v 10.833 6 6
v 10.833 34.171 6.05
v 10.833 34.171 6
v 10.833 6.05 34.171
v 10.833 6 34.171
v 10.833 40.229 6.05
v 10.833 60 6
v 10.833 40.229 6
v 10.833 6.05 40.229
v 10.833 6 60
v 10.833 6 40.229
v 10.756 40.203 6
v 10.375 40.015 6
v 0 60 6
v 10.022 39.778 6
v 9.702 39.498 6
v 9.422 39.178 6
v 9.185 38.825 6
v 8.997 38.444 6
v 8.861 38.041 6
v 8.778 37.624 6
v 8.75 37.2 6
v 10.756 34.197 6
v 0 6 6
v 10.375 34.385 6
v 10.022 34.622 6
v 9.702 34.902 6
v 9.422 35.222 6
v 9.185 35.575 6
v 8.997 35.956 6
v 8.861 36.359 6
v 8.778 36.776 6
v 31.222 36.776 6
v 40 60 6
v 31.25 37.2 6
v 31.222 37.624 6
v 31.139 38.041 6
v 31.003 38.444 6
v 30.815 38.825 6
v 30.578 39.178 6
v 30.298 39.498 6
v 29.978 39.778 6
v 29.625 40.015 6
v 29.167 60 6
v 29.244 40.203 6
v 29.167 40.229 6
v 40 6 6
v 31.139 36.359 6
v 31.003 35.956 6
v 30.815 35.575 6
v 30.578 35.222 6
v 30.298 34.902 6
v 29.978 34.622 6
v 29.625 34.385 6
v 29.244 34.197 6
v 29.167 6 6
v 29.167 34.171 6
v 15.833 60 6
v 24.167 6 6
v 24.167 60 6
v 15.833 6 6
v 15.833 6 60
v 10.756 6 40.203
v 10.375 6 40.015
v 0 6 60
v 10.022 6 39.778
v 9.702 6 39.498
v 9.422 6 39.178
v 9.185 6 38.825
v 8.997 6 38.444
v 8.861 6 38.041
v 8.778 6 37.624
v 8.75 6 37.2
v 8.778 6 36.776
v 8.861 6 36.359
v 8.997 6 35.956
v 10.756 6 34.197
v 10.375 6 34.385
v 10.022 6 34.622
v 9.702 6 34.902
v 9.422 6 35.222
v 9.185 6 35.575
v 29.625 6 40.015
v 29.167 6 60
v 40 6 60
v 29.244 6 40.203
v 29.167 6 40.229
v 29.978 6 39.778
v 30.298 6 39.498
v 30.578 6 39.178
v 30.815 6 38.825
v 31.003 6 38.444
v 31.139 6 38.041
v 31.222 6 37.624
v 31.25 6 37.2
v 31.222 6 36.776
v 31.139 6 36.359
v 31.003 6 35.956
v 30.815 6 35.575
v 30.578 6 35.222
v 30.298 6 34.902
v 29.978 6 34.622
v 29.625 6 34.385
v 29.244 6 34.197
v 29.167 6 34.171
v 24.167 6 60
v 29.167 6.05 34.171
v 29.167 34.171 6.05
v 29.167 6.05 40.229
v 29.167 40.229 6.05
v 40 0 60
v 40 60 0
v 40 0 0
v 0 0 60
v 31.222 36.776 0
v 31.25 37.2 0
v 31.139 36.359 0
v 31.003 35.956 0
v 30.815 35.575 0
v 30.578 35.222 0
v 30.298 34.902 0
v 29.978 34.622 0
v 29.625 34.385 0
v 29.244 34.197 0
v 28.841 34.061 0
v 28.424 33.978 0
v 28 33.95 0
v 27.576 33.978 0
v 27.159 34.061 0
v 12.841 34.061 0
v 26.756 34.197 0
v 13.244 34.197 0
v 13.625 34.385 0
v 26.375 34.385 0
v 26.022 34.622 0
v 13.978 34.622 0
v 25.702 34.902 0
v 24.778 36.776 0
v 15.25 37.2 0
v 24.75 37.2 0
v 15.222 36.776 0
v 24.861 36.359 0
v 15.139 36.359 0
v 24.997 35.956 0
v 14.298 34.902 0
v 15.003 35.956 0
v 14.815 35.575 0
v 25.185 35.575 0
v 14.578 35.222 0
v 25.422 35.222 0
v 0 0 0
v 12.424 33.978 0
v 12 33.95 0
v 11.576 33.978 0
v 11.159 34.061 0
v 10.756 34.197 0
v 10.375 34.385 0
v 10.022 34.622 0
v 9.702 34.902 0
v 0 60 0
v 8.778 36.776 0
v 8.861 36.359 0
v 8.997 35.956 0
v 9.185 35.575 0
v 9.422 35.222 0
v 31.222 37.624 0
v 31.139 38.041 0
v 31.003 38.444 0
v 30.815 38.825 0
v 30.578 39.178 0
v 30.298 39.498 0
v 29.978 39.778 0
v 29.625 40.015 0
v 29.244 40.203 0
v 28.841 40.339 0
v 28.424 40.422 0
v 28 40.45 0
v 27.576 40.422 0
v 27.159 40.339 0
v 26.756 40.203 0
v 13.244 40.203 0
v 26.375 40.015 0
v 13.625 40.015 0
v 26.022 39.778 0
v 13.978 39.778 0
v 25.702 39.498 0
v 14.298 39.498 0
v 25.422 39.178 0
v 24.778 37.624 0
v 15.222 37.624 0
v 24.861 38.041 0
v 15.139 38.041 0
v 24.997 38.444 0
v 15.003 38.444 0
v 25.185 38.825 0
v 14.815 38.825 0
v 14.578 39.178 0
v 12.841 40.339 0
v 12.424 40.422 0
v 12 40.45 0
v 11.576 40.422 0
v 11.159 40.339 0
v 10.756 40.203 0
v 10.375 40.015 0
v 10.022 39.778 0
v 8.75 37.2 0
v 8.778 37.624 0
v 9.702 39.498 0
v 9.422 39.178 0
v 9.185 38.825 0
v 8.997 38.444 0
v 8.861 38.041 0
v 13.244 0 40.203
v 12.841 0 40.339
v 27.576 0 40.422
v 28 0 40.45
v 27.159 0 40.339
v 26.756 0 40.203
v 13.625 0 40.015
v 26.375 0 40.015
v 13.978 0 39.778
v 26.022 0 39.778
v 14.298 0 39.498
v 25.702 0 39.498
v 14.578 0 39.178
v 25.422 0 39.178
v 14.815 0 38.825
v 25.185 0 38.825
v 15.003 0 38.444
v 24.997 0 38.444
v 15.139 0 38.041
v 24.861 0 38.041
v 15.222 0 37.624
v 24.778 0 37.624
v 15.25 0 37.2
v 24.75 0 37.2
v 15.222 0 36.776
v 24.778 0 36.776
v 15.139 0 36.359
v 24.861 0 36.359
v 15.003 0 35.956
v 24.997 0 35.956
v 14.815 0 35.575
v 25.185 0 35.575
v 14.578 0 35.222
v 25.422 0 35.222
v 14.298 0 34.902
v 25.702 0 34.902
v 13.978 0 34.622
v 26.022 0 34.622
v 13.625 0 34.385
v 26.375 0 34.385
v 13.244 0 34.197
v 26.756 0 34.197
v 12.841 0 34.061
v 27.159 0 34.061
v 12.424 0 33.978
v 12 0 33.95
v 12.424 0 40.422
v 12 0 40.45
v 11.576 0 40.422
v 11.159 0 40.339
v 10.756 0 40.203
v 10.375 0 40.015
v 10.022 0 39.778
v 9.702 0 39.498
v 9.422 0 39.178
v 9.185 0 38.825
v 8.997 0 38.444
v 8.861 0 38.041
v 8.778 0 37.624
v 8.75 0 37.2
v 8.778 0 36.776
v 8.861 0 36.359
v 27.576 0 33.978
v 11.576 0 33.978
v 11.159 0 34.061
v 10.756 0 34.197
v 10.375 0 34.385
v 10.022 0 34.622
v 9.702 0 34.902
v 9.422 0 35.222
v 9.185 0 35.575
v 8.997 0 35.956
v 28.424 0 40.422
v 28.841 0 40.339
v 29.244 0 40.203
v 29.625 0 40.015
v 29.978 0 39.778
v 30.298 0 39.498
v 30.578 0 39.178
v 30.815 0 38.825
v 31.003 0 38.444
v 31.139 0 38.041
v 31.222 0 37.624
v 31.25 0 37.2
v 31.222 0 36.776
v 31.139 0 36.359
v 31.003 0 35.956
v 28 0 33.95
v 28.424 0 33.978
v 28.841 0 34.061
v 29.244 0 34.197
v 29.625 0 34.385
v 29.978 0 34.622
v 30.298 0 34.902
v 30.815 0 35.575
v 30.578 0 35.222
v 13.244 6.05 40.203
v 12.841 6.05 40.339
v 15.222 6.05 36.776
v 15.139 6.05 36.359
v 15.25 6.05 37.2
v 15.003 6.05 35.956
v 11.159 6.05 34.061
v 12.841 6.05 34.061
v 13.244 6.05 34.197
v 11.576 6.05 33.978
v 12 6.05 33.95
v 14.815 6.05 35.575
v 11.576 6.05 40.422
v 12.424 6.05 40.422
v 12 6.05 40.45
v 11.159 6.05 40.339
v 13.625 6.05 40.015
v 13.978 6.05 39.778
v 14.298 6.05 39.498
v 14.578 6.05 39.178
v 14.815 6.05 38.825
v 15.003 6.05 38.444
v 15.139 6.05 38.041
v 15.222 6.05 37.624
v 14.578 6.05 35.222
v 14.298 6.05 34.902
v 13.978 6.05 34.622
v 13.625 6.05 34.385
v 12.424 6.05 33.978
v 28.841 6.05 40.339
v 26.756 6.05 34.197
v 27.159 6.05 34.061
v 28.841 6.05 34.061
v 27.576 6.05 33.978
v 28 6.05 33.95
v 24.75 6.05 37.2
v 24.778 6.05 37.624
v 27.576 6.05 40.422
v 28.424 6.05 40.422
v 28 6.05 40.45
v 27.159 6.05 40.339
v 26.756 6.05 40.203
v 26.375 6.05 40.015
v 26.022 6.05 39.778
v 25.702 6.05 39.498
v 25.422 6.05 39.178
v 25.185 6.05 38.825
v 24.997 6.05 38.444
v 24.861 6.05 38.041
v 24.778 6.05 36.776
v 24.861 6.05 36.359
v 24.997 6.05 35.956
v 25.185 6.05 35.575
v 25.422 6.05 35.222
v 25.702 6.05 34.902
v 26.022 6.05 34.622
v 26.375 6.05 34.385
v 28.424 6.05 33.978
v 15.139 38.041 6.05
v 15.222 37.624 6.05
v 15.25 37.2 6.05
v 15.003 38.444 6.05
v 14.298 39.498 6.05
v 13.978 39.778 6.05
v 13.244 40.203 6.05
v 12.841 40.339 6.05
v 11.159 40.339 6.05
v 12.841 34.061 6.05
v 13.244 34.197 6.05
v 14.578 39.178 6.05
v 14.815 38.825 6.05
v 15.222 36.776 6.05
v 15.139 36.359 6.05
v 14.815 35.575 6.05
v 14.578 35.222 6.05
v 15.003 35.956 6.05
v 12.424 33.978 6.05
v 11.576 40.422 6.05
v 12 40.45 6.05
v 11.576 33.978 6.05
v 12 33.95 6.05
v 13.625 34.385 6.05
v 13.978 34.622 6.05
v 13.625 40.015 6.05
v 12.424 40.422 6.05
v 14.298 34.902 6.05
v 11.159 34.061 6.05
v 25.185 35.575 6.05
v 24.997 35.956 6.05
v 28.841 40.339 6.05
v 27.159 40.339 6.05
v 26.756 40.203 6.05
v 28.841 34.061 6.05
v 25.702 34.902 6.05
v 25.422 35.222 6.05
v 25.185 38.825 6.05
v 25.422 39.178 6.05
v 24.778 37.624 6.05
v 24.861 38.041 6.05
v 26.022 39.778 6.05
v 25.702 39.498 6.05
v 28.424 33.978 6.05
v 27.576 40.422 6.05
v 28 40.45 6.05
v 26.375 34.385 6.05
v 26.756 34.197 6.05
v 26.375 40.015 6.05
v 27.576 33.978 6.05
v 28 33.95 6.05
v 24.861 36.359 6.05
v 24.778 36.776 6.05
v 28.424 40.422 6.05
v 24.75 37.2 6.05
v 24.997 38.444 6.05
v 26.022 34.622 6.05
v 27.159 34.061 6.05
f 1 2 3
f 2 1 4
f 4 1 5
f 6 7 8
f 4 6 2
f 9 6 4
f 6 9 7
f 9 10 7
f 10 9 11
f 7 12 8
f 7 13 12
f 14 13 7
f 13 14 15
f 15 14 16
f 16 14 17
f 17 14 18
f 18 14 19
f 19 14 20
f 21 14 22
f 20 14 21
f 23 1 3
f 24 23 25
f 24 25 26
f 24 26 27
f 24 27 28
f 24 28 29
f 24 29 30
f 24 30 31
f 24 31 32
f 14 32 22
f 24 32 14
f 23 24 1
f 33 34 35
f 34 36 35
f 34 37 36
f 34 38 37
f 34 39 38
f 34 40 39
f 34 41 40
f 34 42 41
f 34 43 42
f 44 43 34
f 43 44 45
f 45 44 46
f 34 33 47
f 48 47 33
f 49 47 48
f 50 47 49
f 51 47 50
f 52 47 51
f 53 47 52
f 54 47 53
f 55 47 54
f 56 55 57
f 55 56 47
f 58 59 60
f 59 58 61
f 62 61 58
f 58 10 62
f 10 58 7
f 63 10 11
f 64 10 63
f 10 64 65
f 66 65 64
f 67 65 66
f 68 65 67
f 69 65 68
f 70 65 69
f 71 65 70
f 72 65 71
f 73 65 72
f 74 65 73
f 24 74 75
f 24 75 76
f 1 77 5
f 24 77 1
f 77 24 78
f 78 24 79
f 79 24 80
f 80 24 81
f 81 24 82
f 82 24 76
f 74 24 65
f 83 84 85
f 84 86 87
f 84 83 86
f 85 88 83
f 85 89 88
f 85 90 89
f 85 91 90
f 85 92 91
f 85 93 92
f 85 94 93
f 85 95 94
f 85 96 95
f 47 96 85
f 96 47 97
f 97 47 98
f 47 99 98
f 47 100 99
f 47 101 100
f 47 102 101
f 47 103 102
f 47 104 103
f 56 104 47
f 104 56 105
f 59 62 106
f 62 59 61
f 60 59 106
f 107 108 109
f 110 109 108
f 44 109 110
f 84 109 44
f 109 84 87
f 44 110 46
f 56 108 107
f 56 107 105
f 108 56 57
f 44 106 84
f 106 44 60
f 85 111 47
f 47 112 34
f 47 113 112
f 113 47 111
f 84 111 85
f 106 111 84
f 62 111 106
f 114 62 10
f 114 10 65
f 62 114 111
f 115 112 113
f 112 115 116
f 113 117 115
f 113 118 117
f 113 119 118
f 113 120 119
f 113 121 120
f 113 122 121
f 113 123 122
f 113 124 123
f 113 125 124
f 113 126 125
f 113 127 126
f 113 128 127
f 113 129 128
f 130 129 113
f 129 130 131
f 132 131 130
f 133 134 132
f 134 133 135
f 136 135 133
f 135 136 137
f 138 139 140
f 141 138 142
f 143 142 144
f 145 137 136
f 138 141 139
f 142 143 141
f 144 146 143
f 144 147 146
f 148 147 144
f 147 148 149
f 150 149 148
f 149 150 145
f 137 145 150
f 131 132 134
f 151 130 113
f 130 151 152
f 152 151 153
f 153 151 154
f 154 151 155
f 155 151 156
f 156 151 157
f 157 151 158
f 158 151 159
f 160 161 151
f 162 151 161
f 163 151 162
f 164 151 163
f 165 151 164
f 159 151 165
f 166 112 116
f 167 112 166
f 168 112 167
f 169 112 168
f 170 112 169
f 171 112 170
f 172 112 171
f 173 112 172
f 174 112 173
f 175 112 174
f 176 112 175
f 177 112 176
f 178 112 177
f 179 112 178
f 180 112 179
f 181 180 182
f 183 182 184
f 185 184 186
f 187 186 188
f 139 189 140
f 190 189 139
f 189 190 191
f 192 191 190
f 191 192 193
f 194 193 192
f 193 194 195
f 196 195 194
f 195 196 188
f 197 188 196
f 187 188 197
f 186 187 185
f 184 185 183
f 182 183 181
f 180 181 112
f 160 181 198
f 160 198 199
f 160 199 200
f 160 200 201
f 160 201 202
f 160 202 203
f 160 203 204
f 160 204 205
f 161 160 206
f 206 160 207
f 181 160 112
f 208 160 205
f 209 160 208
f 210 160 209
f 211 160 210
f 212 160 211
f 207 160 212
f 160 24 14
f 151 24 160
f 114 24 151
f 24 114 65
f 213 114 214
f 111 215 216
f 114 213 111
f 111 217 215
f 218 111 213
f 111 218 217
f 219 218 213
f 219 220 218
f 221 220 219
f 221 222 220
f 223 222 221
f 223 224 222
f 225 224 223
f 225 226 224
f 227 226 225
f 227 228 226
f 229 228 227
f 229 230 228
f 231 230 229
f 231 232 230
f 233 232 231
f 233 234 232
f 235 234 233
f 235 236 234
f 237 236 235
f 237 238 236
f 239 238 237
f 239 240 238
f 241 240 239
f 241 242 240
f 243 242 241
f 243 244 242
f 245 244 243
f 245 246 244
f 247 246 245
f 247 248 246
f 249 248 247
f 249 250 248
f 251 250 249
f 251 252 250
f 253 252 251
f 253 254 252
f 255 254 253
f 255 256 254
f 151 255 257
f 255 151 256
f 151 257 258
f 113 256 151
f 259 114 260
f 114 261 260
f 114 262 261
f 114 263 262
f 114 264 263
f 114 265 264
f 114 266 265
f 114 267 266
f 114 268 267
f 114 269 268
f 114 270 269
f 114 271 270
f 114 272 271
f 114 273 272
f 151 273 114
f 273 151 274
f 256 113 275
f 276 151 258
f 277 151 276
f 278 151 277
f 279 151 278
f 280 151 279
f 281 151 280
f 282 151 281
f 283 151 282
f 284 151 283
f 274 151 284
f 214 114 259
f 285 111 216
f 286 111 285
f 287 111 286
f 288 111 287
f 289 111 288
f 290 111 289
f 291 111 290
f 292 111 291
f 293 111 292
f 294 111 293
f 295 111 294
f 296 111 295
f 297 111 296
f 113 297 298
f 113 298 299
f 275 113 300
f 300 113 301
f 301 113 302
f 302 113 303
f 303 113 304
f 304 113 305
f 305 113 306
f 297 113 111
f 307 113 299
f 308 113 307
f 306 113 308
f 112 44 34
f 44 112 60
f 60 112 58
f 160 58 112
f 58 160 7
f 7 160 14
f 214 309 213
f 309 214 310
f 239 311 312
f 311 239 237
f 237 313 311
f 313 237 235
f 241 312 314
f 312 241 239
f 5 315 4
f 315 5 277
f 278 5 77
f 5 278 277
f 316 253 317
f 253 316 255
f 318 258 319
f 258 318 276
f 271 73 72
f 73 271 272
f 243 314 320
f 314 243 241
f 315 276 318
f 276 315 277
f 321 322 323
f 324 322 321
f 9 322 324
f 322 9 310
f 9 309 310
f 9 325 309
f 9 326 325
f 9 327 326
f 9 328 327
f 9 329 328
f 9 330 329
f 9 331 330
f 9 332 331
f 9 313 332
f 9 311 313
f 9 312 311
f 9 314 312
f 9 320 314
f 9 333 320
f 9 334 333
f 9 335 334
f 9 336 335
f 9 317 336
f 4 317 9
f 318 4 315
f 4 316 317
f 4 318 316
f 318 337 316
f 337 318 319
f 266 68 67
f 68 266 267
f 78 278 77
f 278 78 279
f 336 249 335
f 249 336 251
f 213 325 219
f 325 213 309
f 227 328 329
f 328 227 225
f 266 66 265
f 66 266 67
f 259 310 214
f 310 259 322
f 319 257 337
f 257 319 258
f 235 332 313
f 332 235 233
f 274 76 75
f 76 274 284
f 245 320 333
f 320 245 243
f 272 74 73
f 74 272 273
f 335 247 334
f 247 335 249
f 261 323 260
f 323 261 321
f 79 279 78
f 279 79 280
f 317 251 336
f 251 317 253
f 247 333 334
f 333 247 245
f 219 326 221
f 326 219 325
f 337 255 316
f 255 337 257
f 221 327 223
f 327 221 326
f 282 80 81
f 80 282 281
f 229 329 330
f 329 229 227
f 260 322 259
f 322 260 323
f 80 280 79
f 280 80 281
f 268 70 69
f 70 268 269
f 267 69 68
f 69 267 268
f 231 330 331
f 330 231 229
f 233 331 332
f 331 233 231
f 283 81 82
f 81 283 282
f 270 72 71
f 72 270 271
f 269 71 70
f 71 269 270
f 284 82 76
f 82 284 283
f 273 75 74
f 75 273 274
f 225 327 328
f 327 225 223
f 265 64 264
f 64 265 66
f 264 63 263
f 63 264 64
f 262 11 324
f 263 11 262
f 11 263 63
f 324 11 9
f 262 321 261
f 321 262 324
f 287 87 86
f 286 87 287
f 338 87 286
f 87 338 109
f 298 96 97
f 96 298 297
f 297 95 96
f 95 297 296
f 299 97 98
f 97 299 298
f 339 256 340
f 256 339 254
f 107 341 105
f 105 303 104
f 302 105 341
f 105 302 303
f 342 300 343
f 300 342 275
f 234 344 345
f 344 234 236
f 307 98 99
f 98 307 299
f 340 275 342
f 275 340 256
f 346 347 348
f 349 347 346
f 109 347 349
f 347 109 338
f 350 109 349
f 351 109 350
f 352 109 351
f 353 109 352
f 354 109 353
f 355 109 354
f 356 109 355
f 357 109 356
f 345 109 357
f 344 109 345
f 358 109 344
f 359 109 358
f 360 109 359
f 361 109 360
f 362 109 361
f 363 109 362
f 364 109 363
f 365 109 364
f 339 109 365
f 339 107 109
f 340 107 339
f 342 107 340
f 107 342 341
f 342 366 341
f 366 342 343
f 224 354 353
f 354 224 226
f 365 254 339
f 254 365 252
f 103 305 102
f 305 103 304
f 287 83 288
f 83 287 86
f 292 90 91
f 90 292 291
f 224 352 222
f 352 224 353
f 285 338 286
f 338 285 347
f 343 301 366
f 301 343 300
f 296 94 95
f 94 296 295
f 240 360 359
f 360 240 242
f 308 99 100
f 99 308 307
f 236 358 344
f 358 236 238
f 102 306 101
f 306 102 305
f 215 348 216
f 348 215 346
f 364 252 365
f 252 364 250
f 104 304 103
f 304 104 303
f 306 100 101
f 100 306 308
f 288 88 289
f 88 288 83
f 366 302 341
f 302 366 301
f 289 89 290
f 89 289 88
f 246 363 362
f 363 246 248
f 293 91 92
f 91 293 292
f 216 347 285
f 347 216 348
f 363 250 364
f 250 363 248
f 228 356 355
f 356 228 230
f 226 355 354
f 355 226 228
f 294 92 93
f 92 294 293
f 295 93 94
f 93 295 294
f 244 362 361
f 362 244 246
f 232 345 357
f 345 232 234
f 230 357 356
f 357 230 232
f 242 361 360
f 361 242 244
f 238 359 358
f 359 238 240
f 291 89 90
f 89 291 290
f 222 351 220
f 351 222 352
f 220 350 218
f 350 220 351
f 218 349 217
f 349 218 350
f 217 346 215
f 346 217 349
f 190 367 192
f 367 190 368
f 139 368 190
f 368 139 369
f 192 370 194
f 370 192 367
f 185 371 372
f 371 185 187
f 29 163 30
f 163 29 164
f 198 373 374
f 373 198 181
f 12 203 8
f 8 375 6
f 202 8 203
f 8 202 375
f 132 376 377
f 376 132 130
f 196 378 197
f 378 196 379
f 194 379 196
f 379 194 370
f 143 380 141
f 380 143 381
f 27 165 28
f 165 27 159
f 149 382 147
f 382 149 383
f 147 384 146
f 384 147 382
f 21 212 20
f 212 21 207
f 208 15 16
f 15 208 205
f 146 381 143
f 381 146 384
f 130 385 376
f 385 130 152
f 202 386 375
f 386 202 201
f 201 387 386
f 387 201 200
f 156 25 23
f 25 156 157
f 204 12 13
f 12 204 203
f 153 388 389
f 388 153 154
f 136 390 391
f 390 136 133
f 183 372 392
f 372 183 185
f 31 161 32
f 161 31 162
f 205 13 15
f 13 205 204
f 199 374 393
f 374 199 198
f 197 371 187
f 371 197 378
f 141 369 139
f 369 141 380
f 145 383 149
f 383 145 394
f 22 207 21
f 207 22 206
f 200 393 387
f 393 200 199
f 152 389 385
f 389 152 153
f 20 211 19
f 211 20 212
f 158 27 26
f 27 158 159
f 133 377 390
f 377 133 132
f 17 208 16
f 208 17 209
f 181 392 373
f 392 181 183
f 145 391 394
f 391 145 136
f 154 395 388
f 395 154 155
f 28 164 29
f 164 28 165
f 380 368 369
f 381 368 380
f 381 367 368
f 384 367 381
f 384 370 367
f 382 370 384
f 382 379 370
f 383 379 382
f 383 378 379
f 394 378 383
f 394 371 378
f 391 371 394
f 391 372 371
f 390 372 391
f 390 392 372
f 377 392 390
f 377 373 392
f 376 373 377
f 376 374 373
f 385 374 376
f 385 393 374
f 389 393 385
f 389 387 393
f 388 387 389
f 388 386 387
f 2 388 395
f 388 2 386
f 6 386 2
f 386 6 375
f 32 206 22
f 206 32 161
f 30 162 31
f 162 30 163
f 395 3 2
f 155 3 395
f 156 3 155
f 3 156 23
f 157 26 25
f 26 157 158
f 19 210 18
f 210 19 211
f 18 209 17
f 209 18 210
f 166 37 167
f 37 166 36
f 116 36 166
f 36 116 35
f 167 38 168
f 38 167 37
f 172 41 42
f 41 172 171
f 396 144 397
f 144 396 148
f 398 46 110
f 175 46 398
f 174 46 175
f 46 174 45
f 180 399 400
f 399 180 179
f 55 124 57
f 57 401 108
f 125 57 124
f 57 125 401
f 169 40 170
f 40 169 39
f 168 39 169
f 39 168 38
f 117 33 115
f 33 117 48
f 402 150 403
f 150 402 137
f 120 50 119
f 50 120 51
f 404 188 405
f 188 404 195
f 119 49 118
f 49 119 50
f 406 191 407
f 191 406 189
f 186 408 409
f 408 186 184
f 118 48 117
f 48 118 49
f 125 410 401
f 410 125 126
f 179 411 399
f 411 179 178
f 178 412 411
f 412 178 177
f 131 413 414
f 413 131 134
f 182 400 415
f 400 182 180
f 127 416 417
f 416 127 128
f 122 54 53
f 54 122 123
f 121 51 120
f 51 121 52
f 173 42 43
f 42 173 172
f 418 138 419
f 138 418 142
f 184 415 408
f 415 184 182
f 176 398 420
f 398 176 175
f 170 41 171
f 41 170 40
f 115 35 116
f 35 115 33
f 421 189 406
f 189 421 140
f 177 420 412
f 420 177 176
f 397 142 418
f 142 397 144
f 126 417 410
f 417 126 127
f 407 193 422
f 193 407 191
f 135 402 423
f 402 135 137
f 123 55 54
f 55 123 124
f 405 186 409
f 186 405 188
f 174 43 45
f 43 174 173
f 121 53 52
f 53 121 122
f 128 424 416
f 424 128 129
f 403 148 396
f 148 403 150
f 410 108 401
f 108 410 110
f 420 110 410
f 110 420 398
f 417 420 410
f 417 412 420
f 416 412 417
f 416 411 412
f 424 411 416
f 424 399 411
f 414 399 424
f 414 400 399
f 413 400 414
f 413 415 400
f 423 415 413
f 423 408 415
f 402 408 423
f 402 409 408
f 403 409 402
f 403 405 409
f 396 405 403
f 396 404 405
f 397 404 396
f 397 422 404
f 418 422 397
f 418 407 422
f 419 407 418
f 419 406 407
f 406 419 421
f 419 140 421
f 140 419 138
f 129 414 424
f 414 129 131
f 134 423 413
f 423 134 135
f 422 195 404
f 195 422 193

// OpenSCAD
// ============================================================
// Y7 — Structural L-bracket (tuned for PAHT-CF / carbon-fibre nylon)
// Stiff, heat-resistant load bracket with gusset ribs + bolt holes.
// Print flat on the outside of the L, no supports. Units: mm.
// ============================================================

leg_a    = 60;    // length of leg A
leg_b    = 60;    // length of leg B
width    = 40;    // bracket width
thick    = 6;     // plate thickness
bolt_d   = 6.5;   // clearance for M6
rib_t    = 5;     // gusset rib thickness
ribs     = 2;     // number of stiffening ribs
$fn      = 48;
eps      = 0.05;

module bolt(x, z) {
    translate([x, -eps, z]) rotate([-90, 0, 0]) cylinder(h = thick + 2*eps, r = bolt_d/2);
}

module bracket() {
    difference() {
        union() {
            // leg A (vertical)
            cube([width, thick, leg_a]);
            // leg B (horizontal)
            cube([width, leg_b, thick]);
            // gusset ribs (triangular) spanning the inner corner
            for (i = [0 : ribs - 1]) {
                x = width/(ribs+1) * (i+1) - rib_t/2;
                translate([x, thick, thick])
                    rotate([90, 0, 90])
                        linear_extrude(height = rib_t)
                            polygon([[0,0],[leg_b-thick,0],[0,leg_a-thick]]);
            }
        }
        // bolt holes in leg A (front face)
        bolt(width*0.30, leg_a*0.62);
        bolt(width*0.70, leg_a*0.62);
        // bolt holes in leg B (through the flat, drilled from top)
        translate([width*0.30, leg_b*0.62, -eps]) cylinder(h = thick + 2*eps, r = bolt_d/2);
        translate([width*0.70, leg_b*0.62, -eps]) cylinder(h = thick + 2*eps, r = bolt_d/2);
    }
}

bracket();
